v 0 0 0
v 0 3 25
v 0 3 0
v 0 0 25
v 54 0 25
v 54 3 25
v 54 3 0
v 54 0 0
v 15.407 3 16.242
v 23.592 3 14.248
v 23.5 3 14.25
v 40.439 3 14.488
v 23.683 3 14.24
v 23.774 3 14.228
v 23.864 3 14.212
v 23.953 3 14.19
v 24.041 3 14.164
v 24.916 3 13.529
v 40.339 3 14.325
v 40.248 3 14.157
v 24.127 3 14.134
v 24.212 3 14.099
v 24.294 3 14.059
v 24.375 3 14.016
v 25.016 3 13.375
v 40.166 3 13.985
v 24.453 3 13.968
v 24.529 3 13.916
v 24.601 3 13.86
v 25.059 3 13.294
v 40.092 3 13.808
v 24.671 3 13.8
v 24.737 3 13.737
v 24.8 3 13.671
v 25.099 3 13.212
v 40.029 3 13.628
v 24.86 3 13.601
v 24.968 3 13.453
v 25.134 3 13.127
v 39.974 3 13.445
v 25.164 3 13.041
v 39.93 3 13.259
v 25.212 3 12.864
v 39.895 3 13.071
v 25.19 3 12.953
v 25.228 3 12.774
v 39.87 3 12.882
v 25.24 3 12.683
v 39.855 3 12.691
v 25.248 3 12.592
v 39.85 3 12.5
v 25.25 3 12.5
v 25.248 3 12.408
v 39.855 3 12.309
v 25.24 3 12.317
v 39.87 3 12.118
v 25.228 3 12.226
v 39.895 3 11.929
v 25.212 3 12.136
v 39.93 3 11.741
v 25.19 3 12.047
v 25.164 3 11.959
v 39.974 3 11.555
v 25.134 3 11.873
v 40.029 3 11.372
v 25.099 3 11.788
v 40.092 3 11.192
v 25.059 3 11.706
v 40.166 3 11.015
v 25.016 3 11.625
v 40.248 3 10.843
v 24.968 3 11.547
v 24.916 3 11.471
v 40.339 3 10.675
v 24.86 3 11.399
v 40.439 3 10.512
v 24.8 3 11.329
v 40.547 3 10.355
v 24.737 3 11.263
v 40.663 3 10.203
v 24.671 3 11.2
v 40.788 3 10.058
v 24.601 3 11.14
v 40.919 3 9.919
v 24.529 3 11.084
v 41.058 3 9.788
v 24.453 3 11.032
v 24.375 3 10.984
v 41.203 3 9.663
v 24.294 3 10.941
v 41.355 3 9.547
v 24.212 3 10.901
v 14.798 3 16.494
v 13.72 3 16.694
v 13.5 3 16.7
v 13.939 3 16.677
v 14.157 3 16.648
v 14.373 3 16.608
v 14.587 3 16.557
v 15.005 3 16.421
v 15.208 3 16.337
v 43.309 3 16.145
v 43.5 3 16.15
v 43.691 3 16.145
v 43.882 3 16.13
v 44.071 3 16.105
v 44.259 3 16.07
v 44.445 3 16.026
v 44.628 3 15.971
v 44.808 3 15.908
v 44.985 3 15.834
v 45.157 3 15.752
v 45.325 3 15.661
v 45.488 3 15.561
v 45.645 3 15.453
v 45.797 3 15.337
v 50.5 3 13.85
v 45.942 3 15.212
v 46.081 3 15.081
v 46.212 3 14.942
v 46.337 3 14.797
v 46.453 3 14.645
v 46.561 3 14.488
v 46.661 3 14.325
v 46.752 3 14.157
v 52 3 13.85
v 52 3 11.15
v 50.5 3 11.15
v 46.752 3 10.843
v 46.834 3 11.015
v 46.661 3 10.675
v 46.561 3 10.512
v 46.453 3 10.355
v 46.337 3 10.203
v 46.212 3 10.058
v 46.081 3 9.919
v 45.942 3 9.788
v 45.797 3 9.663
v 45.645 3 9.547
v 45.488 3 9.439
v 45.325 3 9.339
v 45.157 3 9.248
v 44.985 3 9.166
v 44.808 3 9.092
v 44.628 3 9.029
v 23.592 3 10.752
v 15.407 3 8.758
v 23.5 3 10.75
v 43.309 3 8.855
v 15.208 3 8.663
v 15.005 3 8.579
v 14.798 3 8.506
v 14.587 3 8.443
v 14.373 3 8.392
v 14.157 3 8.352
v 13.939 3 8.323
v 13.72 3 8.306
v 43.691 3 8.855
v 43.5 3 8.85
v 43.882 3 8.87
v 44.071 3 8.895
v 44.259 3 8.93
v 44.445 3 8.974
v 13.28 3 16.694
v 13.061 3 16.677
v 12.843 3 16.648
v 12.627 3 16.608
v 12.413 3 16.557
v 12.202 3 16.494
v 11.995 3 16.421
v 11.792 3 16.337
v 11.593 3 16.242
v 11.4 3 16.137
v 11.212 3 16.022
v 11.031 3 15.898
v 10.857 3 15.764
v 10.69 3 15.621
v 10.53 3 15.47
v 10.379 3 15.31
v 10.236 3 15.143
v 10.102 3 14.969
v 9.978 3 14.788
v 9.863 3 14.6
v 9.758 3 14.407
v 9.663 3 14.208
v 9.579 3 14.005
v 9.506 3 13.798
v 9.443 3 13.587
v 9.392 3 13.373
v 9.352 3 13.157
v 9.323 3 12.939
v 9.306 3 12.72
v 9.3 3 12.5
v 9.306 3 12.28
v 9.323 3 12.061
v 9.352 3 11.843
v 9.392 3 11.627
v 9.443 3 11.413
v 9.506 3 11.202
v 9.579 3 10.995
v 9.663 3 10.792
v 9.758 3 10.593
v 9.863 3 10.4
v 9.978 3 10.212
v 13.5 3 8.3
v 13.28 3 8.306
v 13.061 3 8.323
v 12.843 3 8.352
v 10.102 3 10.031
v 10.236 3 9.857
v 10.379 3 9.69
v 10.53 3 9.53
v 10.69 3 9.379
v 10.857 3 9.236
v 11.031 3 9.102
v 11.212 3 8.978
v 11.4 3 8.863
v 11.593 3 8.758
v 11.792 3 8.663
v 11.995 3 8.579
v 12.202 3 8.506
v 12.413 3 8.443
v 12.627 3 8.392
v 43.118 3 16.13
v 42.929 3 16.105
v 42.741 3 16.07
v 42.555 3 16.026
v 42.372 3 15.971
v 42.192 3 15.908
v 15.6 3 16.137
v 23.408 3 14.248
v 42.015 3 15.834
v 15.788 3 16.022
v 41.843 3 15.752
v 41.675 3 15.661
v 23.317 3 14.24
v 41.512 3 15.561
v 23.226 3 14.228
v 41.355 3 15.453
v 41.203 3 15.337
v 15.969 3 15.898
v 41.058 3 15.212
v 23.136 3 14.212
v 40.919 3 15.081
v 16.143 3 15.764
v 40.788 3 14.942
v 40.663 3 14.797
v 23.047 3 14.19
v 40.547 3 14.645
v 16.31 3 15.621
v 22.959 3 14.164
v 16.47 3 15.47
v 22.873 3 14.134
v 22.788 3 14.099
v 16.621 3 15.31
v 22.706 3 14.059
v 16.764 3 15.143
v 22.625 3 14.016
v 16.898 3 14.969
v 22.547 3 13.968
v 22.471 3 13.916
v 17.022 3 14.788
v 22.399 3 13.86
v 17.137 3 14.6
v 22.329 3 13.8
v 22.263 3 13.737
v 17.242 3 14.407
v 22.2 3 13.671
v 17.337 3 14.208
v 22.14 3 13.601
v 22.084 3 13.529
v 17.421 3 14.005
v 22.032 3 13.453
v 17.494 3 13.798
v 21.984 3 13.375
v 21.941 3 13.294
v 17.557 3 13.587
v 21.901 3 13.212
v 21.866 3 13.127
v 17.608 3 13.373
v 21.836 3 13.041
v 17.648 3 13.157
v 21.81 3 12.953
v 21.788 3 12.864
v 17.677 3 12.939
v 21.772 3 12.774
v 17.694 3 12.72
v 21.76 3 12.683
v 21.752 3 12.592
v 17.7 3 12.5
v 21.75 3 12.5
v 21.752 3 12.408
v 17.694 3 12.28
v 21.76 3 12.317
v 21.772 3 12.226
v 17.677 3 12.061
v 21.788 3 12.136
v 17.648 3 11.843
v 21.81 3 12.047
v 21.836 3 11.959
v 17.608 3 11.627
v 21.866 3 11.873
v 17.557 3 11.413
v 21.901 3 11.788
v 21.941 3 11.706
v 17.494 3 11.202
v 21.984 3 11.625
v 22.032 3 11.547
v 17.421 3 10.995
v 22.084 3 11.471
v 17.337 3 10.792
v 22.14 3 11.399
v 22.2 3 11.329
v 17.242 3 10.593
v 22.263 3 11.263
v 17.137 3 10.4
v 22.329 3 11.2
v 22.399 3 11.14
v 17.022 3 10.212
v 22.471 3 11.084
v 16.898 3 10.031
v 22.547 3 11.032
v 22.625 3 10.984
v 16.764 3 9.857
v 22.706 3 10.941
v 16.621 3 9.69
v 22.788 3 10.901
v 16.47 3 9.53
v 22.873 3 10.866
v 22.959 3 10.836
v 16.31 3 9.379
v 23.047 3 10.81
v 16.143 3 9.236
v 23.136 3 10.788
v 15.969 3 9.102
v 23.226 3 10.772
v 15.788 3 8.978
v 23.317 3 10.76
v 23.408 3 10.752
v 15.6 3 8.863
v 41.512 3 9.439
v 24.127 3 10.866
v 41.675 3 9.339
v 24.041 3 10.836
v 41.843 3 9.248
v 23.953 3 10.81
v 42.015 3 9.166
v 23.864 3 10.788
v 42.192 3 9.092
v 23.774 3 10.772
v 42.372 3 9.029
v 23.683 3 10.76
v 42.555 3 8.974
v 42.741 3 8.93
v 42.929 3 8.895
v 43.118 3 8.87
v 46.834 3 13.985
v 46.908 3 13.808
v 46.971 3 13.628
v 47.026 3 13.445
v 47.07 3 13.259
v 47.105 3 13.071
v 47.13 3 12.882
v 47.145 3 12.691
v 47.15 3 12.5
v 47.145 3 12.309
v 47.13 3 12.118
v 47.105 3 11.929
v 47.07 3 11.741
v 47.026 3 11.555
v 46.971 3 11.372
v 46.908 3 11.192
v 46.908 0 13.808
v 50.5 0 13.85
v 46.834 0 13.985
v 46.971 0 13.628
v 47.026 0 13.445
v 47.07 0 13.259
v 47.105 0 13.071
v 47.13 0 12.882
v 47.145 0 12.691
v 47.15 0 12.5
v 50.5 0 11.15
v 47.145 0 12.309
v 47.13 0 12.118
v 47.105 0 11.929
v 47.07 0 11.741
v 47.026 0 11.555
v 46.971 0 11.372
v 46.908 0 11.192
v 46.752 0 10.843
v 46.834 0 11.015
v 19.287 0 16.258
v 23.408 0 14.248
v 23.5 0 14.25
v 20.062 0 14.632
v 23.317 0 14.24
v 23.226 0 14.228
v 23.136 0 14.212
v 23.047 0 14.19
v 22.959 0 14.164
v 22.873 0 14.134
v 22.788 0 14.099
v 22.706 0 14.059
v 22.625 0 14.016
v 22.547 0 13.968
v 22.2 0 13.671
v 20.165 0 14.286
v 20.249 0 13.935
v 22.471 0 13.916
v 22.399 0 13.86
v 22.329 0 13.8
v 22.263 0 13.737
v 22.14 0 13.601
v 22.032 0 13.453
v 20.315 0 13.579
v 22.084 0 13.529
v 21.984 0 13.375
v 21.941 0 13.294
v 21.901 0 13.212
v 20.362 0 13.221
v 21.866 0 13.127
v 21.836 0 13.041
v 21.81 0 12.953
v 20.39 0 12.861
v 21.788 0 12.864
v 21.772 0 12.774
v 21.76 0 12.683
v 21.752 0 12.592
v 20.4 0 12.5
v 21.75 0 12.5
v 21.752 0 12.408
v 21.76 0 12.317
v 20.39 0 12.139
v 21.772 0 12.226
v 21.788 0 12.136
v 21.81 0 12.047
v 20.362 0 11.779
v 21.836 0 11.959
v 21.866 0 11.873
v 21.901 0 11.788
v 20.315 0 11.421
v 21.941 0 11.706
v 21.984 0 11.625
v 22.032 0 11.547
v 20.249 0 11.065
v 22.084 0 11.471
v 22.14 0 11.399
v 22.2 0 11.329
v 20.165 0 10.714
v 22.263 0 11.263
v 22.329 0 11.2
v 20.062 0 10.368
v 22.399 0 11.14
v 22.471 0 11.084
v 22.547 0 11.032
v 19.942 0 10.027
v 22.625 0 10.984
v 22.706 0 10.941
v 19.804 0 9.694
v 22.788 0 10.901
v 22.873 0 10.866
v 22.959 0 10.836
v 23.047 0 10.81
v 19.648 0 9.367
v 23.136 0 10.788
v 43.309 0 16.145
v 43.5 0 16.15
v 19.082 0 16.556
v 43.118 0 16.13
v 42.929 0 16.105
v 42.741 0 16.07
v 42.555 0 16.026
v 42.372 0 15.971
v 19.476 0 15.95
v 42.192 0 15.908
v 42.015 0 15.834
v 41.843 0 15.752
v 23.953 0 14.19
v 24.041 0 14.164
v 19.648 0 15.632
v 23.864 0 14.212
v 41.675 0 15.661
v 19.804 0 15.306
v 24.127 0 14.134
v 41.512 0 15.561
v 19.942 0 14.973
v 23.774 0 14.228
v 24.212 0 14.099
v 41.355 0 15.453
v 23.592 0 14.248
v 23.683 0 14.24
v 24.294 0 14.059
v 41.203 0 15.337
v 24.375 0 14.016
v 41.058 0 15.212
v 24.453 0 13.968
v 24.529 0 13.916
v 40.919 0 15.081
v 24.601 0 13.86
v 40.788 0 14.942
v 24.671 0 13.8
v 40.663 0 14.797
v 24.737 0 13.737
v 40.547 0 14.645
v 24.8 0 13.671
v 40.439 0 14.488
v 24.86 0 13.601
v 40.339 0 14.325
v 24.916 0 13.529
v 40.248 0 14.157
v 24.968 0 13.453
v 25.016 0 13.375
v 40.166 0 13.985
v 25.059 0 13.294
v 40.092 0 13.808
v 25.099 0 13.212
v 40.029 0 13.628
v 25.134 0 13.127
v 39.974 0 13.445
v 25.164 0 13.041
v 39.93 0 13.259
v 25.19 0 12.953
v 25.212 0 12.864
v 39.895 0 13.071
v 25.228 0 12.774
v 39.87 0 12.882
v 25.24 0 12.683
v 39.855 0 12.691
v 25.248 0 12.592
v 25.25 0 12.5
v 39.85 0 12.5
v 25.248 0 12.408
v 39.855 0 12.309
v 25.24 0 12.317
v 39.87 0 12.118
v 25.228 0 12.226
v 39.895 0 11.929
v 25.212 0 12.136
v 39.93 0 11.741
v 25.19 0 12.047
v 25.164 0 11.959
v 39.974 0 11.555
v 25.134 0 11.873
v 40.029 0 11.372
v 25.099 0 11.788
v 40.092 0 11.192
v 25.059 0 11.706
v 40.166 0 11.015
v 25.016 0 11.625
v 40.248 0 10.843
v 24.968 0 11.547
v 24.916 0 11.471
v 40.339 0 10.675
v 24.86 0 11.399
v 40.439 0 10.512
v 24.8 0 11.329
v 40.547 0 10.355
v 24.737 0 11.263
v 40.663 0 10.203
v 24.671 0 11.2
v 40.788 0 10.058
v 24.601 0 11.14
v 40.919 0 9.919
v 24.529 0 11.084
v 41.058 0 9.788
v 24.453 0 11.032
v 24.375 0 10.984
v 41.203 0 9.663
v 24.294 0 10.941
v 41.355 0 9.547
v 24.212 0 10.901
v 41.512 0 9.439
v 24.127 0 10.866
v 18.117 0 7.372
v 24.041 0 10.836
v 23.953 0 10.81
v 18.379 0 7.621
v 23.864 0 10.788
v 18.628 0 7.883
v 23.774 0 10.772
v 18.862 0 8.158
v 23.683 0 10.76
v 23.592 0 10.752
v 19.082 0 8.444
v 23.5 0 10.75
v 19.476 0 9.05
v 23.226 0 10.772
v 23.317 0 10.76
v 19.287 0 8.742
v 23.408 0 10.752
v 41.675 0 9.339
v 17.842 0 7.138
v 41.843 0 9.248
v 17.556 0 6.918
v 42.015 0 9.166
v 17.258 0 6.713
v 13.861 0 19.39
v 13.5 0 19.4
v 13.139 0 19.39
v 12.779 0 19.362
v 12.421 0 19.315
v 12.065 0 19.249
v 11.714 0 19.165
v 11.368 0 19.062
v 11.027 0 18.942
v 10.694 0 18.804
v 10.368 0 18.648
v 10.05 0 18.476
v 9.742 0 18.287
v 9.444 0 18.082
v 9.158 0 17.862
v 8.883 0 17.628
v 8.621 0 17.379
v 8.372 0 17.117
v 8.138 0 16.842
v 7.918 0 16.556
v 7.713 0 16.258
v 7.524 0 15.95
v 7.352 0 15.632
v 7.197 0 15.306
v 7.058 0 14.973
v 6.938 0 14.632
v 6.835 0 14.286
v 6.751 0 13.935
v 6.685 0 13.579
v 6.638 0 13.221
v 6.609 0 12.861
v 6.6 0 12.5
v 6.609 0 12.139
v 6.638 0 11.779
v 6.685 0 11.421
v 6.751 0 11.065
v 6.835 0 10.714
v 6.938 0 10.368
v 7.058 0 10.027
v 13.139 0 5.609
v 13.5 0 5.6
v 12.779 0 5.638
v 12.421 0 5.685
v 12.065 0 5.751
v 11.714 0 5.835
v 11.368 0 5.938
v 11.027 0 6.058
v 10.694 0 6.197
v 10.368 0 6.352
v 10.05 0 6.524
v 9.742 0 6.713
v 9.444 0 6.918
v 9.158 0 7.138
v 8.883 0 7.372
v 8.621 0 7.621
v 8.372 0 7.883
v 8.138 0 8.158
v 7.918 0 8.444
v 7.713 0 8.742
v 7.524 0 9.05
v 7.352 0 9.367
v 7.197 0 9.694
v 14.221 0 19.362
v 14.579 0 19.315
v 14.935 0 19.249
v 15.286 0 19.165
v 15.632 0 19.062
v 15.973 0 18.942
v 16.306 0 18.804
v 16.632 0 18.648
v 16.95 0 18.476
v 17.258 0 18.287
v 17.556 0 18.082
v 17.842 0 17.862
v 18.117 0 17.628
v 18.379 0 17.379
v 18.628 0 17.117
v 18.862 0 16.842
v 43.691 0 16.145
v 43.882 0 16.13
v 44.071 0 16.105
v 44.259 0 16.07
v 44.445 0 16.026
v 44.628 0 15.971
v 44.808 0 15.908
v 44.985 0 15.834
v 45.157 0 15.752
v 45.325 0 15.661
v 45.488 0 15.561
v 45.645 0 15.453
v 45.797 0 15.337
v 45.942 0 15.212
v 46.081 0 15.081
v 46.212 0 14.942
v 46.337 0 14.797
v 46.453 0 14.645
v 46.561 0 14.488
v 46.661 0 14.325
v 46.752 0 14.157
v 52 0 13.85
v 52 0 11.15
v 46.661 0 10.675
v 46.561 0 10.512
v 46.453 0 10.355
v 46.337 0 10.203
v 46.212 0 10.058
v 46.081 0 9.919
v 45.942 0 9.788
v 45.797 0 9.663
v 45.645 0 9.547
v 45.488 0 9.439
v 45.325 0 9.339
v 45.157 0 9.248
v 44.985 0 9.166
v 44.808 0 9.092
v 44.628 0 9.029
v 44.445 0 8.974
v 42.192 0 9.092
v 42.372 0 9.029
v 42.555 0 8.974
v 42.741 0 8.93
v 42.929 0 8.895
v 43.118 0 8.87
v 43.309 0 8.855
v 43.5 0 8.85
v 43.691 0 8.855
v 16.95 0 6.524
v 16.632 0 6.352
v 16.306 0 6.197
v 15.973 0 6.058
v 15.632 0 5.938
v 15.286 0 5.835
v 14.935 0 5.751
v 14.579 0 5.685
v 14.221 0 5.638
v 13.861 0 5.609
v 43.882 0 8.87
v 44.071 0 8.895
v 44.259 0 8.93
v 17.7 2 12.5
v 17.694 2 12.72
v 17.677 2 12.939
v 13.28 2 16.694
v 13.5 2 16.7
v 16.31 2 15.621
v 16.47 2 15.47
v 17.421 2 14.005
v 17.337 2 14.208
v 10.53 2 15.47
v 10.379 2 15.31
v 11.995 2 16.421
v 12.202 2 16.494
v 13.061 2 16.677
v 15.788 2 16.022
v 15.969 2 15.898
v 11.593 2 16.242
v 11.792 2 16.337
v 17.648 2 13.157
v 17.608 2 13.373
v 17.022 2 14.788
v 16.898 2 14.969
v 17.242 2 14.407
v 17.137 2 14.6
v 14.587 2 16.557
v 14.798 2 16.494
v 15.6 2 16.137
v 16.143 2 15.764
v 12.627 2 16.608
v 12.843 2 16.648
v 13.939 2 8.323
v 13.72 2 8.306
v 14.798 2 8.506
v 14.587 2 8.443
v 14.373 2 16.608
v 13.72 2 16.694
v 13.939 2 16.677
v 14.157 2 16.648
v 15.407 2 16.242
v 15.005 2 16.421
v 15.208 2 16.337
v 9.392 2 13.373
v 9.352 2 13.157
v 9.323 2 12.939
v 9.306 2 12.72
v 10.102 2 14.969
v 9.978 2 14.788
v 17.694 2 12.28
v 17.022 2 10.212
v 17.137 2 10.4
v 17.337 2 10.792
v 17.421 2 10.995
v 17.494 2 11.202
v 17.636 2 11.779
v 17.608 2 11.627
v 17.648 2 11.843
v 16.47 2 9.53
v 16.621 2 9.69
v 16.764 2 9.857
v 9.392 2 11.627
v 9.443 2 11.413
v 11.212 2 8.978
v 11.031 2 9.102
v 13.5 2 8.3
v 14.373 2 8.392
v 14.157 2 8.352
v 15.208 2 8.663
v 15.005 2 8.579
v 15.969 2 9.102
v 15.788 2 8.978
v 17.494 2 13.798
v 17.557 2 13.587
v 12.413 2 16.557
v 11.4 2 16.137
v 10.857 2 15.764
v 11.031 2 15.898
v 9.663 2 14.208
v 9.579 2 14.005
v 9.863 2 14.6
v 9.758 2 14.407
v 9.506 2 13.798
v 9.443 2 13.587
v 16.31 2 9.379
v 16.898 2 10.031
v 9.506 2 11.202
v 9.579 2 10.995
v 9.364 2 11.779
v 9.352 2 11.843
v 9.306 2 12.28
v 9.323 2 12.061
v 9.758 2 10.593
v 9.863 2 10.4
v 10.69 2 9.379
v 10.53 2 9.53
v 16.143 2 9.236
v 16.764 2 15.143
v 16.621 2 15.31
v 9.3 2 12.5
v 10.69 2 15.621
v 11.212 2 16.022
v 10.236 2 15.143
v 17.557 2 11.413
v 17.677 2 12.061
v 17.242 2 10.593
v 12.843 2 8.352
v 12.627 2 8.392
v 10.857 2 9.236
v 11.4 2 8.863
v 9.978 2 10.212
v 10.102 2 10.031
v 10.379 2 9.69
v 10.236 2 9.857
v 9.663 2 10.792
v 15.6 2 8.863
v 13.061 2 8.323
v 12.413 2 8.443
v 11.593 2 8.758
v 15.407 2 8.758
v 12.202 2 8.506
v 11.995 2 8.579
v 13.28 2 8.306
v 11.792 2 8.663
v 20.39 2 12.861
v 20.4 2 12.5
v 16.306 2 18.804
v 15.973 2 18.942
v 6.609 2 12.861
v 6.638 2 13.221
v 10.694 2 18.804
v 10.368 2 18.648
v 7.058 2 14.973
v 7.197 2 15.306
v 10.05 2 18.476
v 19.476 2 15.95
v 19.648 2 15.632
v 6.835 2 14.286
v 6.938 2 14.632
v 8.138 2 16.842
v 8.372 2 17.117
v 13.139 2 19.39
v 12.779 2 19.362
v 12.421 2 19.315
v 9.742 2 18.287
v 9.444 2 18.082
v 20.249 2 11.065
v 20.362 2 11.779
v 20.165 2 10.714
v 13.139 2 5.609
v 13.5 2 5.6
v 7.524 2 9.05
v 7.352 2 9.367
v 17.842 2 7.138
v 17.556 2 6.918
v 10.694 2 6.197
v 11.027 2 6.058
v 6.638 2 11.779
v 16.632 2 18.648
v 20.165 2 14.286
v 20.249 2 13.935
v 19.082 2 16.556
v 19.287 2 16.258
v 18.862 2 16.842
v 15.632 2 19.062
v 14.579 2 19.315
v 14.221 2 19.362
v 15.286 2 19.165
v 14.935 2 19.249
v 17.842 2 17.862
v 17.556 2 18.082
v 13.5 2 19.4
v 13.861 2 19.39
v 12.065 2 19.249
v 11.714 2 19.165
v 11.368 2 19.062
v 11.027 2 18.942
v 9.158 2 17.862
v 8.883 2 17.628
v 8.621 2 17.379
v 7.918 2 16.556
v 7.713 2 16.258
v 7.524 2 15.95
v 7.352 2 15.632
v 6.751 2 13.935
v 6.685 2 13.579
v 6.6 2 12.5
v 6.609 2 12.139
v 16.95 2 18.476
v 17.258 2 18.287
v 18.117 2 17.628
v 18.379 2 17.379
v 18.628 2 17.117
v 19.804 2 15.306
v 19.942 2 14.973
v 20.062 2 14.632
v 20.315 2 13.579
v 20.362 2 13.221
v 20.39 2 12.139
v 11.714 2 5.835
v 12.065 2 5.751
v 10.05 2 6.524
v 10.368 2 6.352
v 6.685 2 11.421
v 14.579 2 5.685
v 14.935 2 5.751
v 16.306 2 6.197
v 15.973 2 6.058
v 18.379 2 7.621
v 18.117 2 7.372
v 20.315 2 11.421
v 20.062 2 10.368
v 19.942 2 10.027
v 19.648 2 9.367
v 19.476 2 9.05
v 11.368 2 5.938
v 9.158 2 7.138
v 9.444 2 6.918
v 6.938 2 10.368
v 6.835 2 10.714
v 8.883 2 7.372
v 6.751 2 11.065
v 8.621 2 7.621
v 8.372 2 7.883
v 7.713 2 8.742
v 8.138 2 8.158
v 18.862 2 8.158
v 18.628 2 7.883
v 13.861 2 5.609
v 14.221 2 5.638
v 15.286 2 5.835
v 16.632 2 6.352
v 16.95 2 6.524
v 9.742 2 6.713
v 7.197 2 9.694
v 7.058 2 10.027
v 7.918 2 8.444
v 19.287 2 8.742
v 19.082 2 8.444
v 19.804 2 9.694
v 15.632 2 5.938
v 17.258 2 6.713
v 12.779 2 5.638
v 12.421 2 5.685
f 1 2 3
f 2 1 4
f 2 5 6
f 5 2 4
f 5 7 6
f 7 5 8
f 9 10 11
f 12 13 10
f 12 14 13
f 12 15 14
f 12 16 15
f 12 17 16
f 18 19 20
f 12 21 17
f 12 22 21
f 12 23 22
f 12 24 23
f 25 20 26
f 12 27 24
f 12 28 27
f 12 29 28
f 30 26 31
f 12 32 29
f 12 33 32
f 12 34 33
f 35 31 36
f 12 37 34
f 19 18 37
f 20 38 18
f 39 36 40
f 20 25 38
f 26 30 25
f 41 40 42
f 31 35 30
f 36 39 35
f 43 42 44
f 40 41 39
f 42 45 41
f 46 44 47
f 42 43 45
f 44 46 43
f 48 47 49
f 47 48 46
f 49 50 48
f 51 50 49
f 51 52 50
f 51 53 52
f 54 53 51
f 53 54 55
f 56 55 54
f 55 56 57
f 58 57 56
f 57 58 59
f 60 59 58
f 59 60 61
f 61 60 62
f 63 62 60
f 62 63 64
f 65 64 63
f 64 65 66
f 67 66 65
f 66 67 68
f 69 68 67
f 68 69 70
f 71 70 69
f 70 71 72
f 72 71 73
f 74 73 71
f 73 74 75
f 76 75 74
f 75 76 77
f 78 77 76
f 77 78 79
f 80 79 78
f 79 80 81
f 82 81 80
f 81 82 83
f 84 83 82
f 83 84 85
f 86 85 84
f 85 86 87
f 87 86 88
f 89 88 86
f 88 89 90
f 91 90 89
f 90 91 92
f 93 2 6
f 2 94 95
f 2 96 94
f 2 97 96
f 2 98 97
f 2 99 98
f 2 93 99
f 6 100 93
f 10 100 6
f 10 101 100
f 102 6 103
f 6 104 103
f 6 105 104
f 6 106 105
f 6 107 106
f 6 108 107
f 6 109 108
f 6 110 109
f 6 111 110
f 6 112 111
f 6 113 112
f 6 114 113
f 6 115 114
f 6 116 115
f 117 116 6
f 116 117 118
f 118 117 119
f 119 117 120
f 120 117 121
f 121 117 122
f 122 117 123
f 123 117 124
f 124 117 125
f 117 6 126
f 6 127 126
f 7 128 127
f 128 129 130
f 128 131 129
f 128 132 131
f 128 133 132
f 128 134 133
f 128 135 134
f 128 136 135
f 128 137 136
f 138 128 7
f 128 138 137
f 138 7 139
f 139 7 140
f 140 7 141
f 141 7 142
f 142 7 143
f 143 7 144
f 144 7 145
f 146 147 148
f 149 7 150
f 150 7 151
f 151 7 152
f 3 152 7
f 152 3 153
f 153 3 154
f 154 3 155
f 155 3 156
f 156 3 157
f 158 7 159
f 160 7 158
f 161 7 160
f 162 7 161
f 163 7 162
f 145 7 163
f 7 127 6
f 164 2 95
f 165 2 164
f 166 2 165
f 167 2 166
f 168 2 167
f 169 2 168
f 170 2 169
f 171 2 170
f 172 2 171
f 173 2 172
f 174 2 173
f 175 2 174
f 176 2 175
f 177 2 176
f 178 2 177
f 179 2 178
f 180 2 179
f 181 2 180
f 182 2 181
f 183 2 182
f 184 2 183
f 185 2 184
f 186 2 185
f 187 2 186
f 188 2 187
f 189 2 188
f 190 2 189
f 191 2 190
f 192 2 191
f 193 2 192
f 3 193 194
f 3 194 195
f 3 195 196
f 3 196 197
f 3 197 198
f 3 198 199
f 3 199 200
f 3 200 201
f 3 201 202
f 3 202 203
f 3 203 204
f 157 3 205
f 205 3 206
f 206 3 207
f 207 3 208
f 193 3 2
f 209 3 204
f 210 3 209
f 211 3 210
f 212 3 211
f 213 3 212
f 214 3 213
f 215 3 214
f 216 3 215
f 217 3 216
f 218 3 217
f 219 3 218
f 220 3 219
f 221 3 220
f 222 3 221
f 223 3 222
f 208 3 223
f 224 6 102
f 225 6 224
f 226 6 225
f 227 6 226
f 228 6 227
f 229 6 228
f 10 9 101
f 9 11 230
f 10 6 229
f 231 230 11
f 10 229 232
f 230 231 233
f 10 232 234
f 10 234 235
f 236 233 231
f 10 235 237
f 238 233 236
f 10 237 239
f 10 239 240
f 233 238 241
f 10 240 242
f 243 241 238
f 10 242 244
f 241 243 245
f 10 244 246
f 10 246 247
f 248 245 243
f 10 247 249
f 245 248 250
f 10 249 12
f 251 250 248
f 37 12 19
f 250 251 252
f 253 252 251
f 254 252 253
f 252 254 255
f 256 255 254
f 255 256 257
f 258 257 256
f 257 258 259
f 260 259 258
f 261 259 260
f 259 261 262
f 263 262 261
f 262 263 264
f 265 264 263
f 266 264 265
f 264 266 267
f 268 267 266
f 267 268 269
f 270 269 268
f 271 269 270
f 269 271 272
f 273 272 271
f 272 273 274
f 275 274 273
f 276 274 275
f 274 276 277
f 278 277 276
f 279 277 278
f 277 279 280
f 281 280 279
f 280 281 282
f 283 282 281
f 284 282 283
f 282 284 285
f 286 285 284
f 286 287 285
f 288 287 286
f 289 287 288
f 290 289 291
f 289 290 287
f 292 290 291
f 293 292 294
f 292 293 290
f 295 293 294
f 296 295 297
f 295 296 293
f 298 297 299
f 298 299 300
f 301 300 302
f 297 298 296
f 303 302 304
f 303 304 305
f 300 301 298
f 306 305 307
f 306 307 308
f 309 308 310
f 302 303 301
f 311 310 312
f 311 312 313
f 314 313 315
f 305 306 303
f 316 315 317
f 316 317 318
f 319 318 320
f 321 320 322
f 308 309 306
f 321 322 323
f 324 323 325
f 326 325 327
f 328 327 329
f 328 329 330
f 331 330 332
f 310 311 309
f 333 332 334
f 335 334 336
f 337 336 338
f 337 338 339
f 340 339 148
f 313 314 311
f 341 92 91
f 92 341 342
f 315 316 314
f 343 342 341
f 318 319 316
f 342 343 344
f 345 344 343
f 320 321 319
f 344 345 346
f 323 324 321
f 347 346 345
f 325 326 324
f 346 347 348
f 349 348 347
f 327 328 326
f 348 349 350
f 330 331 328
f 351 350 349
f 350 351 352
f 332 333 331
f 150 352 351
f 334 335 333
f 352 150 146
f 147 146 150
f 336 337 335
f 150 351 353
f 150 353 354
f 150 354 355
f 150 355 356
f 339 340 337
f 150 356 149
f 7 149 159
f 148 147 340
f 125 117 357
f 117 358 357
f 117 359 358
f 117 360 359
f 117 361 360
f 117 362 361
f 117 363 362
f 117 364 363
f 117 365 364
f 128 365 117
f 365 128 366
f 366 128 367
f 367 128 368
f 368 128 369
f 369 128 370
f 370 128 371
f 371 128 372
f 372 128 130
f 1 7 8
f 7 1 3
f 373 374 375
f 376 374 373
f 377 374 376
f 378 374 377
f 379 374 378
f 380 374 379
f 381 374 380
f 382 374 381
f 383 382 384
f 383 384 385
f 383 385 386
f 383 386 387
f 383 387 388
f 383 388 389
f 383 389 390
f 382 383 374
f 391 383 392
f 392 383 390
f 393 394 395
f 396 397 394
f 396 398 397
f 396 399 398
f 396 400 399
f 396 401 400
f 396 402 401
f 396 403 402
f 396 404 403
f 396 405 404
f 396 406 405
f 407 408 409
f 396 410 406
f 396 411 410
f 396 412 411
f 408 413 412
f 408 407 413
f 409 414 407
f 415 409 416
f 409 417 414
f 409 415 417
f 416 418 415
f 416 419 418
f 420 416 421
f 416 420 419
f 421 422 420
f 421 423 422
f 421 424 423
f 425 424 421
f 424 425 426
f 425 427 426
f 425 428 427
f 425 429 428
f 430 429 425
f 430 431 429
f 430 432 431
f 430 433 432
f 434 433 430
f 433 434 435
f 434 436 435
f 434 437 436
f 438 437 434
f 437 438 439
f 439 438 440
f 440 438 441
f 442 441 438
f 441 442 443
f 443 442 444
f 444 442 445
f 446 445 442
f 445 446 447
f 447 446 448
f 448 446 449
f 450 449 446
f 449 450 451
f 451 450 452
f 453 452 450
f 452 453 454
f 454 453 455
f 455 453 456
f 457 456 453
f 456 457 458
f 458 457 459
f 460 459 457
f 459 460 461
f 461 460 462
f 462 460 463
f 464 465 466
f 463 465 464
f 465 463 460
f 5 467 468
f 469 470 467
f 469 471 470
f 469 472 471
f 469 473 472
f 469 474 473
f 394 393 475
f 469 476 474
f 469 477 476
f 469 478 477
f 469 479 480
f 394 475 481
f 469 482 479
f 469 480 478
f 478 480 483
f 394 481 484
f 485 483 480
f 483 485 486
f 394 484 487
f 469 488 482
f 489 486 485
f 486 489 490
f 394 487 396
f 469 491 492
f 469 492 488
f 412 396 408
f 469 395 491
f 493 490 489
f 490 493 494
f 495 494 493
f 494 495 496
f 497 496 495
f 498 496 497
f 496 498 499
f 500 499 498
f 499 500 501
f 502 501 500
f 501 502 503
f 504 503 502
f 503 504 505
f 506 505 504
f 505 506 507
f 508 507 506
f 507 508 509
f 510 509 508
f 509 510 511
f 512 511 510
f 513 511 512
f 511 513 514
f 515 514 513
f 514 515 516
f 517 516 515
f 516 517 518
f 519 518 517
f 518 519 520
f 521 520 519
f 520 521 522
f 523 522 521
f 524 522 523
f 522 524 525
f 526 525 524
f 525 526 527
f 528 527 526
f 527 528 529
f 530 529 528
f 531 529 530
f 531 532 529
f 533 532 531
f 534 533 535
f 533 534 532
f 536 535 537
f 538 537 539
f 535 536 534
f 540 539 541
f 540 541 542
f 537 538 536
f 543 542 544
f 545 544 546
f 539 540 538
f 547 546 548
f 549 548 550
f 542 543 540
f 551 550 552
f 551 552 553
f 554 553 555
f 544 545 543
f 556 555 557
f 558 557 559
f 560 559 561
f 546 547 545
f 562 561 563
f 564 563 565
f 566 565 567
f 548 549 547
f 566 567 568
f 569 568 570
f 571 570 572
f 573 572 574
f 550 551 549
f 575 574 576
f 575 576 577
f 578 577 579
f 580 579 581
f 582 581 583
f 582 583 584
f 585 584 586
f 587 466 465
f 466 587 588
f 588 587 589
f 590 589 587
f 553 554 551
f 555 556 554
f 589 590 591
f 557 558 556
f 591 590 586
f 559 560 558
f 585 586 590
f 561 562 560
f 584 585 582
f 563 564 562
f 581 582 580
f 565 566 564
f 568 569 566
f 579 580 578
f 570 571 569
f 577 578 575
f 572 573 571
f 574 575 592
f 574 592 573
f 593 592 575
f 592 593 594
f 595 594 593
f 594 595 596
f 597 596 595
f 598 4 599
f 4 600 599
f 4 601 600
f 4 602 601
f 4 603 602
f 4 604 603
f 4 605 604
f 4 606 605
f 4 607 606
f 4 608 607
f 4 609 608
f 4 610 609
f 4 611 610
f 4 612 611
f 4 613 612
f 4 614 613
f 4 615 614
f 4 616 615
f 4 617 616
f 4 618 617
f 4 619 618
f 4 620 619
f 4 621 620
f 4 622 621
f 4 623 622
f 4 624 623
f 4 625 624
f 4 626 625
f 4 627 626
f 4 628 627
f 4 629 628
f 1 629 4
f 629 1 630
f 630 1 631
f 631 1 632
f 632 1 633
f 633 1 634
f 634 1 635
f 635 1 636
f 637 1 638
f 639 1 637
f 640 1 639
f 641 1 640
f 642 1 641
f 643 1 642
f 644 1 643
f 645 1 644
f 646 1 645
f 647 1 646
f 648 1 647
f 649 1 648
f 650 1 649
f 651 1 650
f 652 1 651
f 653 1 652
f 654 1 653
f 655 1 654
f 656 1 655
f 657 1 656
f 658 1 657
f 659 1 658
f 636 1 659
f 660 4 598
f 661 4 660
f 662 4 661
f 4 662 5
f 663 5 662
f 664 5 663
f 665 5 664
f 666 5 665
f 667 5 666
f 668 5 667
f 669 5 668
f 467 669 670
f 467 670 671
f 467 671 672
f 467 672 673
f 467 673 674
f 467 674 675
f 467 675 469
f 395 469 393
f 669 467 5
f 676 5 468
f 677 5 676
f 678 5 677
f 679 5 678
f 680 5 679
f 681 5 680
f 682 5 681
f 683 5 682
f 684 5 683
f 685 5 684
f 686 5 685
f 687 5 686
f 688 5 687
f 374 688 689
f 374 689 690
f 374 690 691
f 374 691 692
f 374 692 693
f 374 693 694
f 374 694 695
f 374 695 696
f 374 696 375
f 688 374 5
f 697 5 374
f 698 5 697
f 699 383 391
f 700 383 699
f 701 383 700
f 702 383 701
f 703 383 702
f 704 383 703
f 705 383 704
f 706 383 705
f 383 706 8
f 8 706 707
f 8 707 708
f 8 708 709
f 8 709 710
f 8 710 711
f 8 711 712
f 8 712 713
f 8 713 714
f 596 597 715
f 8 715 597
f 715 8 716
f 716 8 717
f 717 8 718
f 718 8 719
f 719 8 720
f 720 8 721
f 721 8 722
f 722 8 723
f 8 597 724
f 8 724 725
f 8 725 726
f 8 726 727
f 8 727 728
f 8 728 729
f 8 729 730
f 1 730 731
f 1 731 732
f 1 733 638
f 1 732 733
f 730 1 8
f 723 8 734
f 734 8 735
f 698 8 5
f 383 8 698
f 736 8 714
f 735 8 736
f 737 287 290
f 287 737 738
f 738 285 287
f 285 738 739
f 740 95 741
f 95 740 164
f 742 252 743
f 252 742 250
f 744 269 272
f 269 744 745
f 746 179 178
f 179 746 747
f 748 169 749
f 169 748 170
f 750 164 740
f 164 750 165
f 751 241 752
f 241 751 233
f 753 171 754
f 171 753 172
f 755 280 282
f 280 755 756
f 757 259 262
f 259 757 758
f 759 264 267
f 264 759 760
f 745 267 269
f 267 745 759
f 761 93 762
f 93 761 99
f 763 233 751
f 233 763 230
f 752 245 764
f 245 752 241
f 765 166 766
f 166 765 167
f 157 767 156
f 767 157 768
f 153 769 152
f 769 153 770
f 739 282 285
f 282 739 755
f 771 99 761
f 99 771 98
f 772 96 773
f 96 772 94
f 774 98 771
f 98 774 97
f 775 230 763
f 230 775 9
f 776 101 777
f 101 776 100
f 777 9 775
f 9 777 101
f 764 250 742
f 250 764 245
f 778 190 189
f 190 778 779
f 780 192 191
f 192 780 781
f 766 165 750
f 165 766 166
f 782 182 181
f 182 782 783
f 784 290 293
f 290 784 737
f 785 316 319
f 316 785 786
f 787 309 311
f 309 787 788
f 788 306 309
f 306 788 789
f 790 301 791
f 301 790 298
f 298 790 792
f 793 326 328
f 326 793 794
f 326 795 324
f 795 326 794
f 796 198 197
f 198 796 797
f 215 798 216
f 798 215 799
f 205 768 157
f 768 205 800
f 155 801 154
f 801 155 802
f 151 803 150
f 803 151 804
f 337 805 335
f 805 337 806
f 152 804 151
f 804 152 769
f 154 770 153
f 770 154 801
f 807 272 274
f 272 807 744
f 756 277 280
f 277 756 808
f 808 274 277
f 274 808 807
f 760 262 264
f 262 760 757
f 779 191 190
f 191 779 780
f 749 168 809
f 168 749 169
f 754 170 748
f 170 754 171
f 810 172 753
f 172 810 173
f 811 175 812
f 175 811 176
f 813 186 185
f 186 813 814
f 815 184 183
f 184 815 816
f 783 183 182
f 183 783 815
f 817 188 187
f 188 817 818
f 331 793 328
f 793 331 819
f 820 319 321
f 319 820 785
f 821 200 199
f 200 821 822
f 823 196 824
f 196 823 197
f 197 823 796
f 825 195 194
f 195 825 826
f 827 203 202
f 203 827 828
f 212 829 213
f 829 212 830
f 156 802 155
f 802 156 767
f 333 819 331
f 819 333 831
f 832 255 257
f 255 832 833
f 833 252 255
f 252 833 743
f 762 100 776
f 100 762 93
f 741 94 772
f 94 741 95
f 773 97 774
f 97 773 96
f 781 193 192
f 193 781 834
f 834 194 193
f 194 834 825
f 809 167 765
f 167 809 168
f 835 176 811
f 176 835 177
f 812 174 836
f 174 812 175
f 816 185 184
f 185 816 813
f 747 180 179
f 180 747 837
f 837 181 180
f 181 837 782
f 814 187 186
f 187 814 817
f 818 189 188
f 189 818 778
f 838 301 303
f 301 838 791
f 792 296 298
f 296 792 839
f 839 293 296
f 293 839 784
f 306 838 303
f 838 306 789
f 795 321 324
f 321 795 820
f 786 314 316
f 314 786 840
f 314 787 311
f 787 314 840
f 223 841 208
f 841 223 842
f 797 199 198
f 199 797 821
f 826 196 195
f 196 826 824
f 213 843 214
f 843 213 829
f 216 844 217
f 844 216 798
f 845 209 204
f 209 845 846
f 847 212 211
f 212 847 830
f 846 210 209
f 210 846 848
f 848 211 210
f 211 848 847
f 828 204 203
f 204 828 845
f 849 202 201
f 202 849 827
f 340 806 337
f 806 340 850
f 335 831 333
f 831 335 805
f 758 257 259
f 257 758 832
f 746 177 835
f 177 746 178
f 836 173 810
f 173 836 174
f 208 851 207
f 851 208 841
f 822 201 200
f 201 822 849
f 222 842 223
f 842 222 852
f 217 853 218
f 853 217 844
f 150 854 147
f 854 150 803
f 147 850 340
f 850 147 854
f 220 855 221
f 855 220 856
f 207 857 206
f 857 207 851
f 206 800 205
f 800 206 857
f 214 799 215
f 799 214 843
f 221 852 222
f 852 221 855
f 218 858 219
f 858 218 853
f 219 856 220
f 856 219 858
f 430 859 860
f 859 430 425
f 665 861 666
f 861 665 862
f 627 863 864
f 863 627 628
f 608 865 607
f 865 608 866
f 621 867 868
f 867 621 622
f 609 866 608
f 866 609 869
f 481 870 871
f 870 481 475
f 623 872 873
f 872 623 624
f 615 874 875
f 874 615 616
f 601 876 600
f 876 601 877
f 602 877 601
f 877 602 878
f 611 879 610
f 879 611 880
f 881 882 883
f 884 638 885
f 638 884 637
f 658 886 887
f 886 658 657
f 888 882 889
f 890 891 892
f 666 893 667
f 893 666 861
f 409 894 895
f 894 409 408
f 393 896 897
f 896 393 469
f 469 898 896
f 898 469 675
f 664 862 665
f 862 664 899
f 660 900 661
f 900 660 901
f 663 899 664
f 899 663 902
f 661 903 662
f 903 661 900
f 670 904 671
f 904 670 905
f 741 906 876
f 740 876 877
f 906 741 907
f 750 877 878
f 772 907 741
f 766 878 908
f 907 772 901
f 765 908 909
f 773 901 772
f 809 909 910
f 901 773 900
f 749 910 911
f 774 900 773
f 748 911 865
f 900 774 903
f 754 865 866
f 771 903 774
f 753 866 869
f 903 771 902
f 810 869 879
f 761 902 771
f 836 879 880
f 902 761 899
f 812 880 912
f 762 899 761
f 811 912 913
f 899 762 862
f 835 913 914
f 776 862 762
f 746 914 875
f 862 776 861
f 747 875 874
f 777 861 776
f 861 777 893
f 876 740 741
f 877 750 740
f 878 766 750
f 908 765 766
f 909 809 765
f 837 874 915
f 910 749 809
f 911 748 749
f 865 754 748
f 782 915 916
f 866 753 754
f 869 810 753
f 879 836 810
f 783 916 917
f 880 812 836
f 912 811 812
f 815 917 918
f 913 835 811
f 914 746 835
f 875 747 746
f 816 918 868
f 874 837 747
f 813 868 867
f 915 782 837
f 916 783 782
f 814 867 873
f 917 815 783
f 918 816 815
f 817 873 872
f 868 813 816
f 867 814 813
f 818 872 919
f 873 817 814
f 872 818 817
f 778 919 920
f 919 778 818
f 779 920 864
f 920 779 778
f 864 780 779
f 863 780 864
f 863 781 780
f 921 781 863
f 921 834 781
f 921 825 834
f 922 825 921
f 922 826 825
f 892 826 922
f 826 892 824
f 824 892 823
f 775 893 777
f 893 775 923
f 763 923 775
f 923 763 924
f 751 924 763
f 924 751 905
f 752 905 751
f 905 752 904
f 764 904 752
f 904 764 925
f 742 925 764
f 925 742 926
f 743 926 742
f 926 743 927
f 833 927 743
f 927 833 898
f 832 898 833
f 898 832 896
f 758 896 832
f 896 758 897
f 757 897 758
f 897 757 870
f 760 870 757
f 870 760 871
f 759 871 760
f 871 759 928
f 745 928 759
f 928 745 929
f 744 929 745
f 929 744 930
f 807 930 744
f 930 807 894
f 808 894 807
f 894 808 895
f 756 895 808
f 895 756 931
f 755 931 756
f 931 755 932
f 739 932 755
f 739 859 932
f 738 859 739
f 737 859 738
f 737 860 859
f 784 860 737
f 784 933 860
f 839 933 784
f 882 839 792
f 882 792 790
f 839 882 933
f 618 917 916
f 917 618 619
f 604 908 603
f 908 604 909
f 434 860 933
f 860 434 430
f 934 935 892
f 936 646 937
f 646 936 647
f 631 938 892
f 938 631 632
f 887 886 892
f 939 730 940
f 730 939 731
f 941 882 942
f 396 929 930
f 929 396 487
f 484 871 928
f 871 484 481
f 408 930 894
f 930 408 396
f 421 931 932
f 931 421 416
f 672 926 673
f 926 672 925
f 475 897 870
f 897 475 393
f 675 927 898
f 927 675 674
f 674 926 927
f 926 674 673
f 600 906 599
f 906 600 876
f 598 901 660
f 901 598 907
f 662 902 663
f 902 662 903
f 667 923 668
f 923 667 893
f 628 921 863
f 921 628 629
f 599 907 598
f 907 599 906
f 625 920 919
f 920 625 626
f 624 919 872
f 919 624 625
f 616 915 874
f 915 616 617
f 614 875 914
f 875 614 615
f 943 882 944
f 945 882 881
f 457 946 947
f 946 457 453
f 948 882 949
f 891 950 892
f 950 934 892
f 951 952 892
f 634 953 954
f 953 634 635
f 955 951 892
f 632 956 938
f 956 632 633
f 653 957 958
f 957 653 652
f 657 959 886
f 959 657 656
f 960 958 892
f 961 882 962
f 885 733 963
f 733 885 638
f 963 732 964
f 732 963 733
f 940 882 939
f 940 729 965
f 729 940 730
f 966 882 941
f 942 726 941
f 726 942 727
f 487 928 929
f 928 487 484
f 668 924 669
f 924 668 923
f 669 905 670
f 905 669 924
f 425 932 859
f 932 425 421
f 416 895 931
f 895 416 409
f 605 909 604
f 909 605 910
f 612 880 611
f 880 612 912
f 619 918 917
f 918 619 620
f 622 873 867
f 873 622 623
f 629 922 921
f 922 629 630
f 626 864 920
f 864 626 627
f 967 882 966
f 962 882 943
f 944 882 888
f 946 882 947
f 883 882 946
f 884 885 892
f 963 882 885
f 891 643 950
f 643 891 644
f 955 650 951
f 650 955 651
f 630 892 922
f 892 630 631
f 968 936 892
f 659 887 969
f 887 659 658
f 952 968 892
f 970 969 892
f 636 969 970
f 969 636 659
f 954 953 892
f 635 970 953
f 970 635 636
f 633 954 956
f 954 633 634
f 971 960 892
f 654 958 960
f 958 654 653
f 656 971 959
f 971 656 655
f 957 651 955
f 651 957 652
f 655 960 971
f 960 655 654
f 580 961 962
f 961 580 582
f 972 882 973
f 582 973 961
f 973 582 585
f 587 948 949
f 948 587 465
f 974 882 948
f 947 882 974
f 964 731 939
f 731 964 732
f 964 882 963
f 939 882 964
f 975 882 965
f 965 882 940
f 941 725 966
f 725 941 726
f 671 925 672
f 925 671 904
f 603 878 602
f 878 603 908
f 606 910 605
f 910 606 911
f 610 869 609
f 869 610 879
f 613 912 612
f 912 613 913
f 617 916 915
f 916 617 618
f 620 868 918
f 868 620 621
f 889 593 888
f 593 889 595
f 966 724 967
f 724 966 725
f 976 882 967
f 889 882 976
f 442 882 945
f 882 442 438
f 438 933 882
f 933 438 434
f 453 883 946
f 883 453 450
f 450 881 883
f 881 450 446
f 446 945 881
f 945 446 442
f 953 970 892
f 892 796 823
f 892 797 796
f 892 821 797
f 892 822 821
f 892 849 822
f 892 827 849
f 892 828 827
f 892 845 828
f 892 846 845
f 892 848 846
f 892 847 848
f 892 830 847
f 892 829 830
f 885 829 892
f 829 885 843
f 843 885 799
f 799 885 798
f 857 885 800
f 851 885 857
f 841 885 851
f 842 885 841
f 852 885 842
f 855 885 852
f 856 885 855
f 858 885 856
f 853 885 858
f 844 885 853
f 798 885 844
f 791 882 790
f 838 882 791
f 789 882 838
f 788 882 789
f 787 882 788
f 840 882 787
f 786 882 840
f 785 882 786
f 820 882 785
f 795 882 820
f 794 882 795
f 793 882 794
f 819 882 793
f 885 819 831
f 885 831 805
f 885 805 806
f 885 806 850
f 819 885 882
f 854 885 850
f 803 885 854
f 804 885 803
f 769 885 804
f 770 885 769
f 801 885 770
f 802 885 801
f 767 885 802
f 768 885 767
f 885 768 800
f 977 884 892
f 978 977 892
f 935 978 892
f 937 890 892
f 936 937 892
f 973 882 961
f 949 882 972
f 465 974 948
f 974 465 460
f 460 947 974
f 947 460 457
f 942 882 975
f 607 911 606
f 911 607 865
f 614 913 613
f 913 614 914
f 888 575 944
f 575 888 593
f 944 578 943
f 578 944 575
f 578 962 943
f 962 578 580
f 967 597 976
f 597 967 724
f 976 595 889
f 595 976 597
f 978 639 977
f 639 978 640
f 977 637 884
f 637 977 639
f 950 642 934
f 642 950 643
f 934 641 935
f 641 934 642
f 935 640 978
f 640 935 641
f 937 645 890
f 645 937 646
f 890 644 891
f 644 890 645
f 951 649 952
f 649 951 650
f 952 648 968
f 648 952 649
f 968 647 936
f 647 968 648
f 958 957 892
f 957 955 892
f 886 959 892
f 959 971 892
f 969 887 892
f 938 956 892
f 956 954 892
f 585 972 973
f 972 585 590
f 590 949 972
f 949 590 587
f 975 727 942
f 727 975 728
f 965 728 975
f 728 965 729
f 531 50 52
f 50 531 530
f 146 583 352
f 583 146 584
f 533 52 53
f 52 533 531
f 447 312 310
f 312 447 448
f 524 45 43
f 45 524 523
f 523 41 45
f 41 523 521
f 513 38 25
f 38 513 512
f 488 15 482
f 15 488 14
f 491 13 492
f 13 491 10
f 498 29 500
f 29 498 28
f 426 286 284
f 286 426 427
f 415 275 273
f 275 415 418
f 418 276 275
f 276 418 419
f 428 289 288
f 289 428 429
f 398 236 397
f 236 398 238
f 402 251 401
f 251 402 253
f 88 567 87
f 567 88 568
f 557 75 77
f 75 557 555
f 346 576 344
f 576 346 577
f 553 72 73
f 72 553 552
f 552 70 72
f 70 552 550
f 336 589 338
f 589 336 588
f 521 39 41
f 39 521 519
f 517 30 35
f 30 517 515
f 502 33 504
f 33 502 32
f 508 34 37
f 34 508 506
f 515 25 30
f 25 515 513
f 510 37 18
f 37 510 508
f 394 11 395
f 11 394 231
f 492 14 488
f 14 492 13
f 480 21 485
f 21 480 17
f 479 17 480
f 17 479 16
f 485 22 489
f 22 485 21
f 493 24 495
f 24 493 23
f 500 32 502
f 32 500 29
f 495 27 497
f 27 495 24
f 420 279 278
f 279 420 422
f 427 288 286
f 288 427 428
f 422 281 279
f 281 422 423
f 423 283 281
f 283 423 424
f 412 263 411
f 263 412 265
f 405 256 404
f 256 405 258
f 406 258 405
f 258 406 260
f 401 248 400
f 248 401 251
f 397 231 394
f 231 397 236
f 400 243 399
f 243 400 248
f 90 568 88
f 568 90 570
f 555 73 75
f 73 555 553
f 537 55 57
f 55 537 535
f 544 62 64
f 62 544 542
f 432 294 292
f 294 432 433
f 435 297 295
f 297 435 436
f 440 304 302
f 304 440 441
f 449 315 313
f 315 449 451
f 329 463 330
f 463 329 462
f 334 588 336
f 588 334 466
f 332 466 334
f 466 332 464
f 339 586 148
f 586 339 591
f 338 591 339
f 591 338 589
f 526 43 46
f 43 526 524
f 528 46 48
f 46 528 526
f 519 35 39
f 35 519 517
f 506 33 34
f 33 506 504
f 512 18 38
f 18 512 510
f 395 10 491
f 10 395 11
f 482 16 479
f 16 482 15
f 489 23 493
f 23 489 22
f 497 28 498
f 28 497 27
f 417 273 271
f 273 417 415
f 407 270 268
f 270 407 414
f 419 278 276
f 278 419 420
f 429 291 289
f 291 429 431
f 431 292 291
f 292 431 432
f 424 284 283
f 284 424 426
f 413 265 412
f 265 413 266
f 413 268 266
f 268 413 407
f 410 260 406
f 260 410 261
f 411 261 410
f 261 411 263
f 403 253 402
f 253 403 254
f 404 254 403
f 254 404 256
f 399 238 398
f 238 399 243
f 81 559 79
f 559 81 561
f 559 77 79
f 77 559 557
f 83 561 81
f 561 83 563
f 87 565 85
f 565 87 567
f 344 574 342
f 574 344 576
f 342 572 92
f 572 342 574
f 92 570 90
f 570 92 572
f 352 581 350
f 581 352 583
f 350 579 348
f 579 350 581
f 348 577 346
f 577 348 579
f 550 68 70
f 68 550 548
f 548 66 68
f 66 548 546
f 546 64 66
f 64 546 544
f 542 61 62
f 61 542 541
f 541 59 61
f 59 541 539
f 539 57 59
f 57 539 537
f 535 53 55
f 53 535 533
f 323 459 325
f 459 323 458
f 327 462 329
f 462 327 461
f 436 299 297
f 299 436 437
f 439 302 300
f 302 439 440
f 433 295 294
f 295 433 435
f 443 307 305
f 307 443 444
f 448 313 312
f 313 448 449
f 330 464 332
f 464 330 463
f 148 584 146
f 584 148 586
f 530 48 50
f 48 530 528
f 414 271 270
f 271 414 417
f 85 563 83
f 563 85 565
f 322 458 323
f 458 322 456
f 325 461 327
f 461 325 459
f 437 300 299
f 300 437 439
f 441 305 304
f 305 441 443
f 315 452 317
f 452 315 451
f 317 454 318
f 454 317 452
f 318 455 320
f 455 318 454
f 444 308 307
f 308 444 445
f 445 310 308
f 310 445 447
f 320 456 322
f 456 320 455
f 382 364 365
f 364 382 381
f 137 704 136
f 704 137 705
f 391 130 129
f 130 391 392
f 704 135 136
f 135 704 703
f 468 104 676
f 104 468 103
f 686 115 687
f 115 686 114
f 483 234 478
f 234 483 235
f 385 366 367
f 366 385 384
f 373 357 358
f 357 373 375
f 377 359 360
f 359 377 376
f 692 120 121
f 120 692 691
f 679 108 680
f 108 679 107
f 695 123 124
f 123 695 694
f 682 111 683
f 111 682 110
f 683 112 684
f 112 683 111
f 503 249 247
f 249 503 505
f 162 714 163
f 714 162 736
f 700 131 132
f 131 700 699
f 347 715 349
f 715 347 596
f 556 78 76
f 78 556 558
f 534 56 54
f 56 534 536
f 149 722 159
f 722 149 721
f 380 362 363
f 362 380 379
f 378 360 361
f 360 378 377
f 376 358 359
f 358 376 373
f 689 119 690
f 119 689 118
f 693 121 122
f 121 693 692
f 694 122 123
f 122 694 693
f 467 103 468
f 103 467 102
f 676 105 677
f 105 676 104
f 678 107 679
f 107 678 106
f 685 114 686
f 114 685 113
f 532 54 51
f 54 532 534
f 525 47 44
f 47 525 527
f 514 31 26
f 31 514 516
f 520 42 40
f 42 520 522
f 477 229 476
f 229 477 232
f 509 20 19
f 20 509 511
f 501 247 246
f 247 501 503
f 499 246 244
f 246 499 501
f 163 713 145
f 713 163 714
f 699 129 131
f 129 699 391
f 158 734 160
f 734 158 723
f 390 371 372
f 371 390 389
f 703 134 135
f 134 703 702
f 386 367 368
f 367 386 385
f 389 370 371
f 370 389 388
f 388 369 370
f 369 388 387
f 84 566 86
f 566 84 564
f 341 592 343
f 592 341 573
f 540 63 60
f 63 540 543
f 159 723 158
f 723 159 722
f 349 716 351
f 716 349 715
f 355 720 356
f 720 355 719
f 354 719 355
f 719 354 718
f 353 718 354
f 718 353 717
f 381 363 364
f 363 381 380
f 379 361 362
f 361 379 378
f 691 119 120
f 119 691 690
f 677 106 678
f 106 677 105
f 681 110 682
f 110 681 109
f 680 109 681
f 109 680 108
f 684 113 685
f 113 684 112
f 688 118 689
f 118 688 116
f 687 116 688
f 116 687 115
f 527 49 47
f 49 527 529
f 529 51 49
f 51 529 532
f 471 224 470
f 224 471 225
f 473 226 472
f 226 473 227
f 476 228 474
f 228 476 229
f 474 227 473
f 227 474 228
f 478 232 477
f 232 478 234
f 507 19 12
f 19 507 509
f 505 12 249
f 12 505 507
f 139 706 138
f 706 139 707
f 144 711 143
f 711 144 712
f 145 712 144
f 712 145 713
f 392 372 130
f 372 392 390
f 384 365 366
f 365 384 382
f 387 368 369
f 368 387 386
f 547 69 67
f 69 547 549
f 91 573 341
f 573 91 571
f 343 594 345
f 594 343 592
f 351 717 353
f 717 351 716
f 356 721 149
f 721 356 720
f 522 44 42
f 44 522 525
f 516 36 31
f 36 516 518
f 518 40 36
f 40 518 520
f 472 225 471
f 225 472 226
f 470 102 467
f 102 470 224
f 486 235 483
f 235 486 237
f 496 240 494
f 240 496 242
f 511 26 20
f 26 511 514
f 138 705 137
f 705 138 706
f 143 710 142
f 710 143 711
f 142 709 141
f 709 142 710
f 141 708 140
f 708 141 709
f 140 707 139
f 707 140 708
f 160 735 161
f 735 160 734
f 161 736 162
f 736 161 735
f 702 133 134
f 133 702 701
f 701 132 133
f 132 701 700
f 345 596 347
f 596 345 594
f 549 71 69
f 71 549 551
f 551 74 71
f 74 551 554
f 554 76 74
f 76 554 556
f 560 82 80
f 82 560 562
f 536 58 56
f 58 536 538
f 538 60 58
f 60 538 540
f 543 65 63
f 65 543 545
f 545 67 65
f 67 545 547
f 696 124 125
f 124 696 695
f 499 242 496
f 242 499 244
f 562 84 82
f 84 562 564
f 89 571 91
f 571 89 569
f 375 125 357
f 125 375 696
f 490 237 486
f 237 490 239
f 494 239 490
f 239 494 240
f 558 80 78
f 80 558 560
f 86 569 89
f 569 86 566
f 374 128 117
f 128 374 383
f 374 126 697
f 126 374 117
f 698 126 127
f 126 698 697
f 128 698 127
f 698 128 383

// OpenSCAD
$fn = 120;

module hole(r) {
    translate([0,4,0]) rotate([90,0,0]) cylinder(5,r,r);
}


difference() {
    cube([54,3,25]);

    translate([13.5,0,12.5]) hole(4.2);
    translate([13.5,-2,12.5]) hole(6.9);
    translate([23.5,0,12.5]) hole(1.75);

    translate([43.5,0,12.5]) hole(3.65);

    translate([51.25,0,12.5]) translate([0,2,0]) cube([1.5,5,2.7],true);

}
